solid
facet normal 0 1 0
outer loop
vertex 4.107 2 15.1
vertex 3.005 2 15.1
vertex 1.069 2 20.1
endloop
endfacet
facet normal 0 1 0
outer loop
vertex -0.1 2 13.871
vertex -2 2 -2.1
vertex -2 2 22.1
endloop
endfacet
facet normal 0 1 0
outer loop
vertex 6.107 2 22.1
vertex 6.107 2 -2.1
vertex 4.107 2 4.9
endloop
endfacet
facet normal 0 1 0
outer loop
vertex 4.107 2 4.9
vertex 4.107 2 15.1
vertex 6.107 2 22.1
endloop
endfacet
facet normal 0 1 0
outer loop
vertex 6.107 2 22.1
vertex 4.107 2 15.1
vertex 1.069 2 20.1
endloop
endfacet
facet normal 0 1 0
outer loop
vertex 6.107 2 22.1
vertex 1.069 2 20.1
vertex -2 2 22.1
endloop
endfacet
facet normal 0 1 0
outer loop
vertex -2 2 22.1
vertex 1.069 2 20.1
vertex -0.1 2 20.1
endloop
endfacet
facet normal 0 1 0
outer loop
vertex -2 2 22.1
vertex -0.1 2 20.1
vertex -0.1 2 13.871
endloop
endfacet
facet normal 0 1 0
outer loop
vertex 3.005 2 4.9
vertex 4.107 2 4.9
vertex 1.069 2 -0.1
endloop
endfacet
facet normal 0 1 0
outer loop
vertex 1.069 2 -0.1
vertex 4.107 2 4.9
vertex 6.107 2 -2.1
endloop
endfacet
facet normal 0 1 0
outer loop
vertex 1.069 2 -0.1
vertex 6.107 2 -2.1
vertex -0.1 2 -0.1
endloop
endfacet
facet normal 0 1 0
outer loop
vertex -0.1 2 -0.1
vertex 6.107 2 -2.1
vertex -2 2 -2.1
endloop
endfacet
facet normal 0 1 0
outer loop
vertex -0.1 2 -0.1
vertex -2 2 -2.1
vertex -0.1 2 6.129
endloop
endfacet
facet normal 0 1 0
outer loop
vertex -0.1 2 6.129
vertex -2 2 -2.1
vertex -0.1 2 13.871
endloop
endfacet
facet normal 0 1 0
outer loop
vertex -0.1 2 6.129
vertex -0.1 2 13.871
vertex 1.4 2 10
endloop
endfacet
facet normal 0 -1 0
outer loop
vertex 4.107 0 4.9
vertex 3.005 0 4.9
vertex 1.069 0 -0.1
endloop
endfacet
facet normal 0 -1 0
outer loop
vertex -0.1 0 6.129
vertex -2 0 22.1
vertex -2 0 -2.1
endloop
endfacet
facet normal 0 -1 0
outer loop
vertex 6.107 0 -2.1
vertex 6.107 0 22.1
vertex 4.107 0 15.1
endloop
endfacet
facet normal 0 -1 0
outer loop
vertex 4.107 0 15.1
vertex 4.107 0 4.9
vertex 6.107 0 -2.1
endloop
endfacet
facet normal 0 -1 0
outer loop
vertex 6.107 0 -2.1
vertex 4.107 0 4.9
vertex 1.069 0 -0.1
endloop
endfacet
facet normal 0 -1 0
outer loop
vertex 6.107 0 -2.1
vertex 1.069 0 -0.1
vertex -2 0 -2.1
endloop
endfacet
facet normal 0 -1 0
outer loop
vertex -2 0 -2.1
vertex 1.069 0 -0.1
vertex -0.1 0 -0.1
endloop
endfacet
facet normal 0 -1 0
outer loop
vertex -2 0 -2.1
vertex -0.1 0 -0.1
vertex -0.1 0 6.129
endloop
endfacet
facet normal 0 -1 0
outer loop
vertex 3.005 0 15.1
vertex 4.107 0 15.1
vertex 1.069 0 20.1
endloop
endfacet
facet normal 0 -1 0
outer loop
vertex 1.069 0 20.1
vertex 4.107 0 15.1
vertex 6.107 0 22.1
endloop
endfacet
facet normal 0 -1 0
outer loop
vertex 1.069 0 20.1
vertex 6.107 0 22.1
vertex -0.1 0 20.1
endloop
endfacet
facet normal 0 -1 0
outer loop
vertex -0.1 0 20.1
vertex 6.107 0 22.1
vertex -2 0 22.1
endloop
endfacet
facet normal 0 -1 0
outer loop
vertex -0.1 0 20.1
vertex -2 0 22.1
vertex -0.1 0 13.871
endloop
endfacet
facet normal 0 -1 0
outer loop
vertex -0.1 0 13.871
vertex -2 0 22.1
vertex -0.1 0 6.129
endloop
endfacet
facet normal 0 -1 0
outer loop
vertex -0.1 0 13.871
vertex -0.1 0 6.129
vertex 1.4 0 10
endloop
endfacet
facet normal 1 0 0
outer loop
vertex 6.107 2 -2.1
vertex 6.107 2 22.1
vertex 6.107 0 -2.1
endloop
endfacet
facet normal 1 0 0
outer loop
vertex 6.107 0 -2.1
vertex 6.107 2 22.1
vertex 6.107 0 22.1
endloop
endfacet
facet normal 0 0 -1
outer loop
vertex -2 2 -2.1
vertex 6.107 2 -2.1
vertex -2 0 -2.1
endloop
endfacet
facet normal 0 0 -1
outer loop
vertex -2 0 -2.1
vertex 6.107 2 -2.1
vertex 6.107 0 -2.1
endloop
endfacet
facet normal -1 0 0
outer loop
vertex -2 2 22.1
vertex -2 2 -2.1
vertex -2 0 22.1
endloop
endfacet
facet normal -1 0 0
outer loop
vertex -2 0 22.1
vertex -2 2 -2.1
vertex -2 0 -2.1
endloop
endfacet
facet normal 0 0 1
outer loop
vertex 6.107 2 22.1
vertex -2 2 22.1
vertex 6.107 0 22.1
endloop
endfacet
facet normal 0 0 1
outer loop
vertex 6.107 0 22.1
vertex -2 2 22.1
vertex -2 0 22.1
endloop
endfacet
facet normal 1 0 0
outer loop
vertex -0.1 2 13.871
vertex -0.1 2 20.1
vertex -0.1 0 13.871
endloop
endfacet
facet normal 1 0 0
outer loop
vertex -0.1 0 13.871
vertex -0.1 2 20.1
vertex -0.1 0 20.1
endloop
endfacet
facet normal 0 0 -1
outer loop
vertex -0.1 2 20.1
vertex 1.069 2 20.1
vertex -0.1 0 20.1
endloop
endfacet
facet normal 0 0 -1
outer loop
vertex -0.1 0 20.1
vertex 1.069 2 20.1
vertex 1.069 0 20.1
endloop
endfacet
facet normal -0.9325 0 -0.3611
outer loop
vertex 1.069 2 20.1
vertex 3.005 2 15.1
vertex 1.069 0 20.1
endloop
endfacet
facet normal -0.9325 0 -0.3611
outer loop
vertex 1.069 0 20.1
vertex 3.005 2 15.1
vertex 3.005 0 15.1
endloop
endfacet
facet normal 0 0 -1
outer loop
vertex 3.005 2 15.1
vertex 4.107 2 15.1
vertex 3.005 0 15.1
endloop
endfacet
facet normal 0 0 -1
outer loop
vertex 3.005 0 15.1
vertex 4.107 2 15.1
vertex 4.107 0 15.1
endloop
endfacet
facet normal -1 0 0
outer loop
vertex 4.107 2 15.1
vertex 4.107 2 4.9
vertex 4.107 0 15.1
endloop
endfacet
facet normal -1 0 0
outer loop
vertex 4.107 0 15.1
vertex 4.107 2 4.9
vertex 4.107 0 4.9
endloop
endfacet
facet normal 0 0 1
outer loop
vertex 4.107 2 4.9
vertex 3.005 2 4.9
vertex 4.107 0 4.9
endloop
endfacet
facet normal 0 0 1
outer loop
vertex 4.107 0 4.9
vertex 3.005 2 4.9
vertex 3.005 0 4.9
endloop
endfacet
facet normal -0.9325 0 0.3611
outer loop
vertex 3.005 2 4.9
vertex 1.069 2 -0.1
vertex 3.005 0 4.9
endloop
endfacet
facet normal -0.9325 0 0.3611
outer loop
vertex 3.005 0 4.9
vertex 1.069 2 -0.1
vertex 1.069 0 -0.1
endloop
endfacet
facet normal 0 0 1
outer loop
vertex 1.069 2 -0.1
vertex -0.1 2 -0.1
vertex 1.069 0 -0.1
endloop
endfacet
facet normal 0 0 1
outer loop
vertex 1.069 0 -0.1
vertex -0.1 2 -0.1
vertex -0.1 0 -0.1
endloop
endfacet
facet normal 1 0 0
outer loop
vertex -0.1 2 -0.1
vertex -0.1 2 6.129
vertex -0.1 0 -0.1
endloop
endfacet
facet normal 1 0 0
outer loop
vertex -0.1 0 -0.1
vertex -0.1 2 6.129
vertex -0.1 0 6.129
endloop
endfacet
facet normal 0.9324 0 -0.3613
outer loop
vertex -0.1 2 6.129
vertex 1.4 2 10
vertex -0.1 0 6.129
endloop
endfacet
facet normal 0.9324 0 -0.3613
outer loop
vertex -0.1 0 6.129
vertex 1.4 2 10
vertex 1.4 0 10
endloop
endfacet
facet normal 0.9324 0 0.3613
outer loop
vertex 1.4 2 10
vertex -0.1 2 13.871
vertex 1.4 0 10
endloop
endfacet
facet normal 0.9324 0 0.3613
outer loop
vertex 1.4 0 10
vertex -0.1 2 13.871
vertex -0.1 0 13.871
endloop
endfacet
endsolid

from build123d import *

# Parameters (mm, degrees)
SKETCH_5_W      = 8.106936937
SKETCH_5_H      = 24.2
EXTRUDE_3_DEPTH = 2


with BuildPart() as part:
    # 스케치5 → 보스-돌출3 (new body)
    with BuildSketch(Plane(origin=(0, 0, 0), x_dir=(1, 0, 0), z_dir=(0, 1, 0))):
        with Locations((2.053468469, -10)):
            Rectangle(SKETCH_5_W, SKETCH_5_H)
        Polygon((-0.1, -13.871307421), (1.399695667, -10), (-0.1, -6.128692579), (-0.1, 0.1), (1.068502531, 0.1), (3.005439468, -4.9), (4.106936937, -4.9), (4.106936937, -15.1), (3.005439468, -15.1), (1.068502531, -20.1), (-0.1, -20.1), align=None, mode=Mode.SUBTRACT)
    extrude(amount=EXTRUDE_3_DEPTH)


solid = part.part
